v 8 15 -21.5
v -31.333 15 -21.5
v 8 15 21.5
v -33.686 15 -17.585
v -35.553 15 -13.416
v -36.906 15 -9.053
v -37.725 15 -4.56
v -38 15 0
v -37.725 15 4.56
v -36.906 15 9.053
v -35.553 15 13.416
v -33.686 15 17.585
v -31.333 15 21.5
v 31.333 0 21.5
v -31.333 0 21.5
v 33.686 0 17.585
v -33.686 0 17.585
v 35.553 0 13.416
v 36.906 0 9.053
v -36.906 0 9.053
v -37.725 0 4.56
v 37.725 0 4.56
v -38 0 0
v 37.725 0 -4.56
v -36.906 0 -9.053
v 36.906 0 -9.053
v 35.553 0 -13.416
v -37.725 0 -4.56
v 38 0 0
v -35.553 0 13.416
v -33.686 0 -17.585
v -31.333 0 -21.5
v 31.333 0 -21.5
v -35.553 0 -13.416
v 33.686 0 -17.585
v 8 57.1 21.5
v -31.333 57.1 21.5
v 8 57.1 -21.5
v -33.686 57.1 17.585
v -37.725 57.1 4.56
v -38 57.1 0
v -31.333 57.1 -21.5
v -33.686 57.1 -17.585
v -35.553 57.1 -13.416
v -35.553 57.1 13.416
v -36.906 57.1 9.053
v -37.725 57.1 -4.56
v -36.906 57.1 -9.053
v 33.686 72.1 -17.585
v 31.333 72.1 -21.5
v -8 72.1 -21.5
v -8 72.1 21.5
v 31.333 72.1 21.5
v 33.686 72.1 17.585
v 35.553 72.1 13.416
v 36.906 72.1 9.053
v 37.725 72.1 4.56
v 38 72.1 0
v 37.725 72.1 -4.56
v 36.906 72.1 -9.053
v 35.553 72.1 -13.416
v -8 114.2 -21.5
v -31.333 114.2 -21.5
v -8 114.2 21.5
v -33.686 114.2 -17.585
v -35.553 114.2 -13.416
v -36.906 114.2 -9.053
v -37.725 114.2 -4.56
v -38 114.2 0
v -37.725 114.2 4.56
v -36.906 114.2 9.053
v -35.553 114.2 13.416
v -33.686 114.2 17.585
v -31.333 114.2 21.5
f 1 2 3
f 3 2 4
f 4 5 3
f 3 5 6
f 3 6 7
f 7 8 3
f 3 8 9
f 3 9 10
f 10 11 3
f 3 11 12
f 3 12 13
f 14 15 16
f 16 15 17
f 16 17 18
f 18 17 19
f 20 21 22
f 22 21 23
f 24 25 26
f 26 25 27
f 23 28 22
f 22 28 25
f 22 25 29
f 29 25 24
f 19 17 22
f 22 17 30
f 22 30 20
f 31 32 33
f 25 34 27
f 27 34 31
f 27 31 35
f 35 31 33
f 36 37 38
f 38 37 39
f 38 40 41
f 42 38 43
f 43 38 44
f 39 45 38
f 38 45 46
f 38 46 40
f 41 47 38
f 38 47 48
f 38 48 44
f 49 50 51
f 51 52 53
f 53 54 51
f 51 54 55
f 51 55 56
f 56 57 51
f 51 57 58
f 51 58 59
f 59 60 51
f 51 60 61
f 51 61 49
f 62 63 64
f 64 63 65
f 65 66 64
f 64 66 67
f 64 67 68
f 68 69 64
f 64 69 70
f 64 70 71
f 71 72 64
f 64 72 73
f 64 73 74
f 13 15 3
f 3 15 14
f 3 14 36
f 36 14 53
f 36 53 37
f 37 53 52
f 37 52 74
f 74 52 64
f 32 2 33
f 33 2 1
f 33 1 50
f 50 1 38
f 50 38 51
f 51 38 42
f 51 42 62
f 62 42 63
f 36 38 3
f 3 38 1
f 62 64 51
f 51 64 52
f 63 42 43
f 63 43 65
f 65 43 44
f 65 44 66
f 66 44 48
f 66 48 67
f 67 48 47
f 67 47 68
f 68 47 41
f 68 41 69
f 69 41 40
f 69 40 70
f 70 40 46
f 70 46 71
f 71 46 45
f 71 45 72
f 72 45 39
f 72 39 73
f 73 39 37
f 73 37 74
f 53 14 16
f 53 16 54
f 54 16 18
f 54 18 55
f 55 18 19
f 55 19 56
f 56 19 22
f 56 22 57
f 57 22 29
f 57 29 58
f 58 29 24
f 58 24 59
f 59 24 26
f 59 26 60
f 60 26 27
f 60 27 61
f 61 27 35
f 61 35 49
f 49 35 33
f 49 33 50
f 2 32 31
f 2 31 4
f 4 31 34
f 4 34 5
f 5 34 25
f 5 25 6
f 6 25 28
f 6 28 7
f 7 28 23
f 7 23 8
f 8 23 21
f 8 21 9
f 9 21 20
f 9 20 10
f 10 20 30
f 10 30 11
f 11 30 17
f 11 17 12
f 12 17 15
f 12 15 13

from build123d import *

# Parameters (mm, degrees)
SKETCH1_W           = 76
SKETCH1_H           = 43
BOSS_EXTRUDE1_DEPTH = 15
SKETCH3_W           = 30
SKETCH3_H           = 43
BOSS_EXTRUDE2_DEPTH = 42.1
BOSS_EXTRUDE3_START = 42.1
SKETCH4_W           = 76
SKETCH4_H           = 43
BOSS_EXTRUDE3_DEPTH = 15
SKETCH5_W           = 30
SKETCH5_H           = 43
BOSS_EXTRUDE4_DEPTH = 42.1
CUT_EXTRUDE1_DEPTH  = 114.2


# Read off the part's stored shape, not the designer's step: Cut-Extrude1
with BuildPart() as part:
    # Sketch1 → Boss-Extrude1 (new body)
    with BuildSketch(Plane(origin=(0, 0, 0), x_dir=(1, 0, 0), z_dir=(0, 1, 0))):
        Rectangle(SKETCH1_W, SKETCH1_H)
    extrude(amount=BOSS_EXTRUDE1_DEPTH)

    # Sketch3 → Boss-Extrude2 (add)
    with BuildSketch(Plane(origin=(0, 15, 0), x_dir=(1, 0, 0), z_dir=(0, 1, 0))):
        with Locations((23, 0)):
            Rectangle(SKETCH3_W, SKETCH3_H)
    extrude(amount=BOSS_EXTRUDE2_DEPTH)

    # Sketch4 → Boss-Extrude3 (add)
    with BuildSketch(Plane(origin=(0, 15, 0), x_dir=(1, 0, 0), z_dir=(0, 1, 0)).offset(BOSS_EXTRUDE3_START)):
        Rectangle(SKETCH4_W, SKETCH4_H)
    extrude(amount=BOSS_EXTRUDE3_DEPTH)

    # Sketch5 → Boss-Extrude4 (add)
    with BuildSketch(Plane(origin=(0, 72.1, 0), x_dir=(1, 0, 0), z_dir=(0, 1, 0))):
        with Locations((-23, 0)):
            Rectangle(SKETCH5_W, SKETCH5_H)
    extrude(amount=BOSS_EXTRUDE4_DEPTH)

    # Cut-Extrude1 outline → Cut-Extrude1 (cut)
    with BuildSketch(Plane(origin=(0, 0, 0), x_dir=(1, 0, 0), z_dir=(0, 1, 0))):
        with BuildLine():
            Line((-38, -21.5), (-31.332890068, -21.5))
            ThreePointArc((-31.332890068, -21.5), (-36.294970902, -11.255002765), (-38, 1.36e-07))
            Line((-38, 1.36e-07), (-38, -21.5))
        make_face()
        with BuildLine():
            Line((-38, 21.5), (-38, 1.36e-07))
            ThreePointArc((-38, 1.36e-07), (-36.294970861, 11.255002895), (-31.332890068, 21.5))
            Line((-31.332890068, 21.5), (-38, 21.5))
        make_face()
        with BuildLine():
            ThreePointArc((38, -1.36e-07), (36.294970861, -11.255002895), (31.332890068, -21.5))
            Line((31.332890068, -21.5), (38, -21.5))
            Line((38, -21.5), (38, -1.36e-07))
        make_face()
        with BuildLine():
            ThreePointArc((31.332890068, 21.5), (36.294970902, 11.255002765), (38, -1.36e-07))
            Line((38, -1.36e-07), (38, 21.5))
            Line((38, 21.5), (31.332890068, 21.5))
        make_face()
    extrude(amount=CUT_EXTRUDE1_DEPTH, mode=Mode.SUBTRACT)


solid = part.part
